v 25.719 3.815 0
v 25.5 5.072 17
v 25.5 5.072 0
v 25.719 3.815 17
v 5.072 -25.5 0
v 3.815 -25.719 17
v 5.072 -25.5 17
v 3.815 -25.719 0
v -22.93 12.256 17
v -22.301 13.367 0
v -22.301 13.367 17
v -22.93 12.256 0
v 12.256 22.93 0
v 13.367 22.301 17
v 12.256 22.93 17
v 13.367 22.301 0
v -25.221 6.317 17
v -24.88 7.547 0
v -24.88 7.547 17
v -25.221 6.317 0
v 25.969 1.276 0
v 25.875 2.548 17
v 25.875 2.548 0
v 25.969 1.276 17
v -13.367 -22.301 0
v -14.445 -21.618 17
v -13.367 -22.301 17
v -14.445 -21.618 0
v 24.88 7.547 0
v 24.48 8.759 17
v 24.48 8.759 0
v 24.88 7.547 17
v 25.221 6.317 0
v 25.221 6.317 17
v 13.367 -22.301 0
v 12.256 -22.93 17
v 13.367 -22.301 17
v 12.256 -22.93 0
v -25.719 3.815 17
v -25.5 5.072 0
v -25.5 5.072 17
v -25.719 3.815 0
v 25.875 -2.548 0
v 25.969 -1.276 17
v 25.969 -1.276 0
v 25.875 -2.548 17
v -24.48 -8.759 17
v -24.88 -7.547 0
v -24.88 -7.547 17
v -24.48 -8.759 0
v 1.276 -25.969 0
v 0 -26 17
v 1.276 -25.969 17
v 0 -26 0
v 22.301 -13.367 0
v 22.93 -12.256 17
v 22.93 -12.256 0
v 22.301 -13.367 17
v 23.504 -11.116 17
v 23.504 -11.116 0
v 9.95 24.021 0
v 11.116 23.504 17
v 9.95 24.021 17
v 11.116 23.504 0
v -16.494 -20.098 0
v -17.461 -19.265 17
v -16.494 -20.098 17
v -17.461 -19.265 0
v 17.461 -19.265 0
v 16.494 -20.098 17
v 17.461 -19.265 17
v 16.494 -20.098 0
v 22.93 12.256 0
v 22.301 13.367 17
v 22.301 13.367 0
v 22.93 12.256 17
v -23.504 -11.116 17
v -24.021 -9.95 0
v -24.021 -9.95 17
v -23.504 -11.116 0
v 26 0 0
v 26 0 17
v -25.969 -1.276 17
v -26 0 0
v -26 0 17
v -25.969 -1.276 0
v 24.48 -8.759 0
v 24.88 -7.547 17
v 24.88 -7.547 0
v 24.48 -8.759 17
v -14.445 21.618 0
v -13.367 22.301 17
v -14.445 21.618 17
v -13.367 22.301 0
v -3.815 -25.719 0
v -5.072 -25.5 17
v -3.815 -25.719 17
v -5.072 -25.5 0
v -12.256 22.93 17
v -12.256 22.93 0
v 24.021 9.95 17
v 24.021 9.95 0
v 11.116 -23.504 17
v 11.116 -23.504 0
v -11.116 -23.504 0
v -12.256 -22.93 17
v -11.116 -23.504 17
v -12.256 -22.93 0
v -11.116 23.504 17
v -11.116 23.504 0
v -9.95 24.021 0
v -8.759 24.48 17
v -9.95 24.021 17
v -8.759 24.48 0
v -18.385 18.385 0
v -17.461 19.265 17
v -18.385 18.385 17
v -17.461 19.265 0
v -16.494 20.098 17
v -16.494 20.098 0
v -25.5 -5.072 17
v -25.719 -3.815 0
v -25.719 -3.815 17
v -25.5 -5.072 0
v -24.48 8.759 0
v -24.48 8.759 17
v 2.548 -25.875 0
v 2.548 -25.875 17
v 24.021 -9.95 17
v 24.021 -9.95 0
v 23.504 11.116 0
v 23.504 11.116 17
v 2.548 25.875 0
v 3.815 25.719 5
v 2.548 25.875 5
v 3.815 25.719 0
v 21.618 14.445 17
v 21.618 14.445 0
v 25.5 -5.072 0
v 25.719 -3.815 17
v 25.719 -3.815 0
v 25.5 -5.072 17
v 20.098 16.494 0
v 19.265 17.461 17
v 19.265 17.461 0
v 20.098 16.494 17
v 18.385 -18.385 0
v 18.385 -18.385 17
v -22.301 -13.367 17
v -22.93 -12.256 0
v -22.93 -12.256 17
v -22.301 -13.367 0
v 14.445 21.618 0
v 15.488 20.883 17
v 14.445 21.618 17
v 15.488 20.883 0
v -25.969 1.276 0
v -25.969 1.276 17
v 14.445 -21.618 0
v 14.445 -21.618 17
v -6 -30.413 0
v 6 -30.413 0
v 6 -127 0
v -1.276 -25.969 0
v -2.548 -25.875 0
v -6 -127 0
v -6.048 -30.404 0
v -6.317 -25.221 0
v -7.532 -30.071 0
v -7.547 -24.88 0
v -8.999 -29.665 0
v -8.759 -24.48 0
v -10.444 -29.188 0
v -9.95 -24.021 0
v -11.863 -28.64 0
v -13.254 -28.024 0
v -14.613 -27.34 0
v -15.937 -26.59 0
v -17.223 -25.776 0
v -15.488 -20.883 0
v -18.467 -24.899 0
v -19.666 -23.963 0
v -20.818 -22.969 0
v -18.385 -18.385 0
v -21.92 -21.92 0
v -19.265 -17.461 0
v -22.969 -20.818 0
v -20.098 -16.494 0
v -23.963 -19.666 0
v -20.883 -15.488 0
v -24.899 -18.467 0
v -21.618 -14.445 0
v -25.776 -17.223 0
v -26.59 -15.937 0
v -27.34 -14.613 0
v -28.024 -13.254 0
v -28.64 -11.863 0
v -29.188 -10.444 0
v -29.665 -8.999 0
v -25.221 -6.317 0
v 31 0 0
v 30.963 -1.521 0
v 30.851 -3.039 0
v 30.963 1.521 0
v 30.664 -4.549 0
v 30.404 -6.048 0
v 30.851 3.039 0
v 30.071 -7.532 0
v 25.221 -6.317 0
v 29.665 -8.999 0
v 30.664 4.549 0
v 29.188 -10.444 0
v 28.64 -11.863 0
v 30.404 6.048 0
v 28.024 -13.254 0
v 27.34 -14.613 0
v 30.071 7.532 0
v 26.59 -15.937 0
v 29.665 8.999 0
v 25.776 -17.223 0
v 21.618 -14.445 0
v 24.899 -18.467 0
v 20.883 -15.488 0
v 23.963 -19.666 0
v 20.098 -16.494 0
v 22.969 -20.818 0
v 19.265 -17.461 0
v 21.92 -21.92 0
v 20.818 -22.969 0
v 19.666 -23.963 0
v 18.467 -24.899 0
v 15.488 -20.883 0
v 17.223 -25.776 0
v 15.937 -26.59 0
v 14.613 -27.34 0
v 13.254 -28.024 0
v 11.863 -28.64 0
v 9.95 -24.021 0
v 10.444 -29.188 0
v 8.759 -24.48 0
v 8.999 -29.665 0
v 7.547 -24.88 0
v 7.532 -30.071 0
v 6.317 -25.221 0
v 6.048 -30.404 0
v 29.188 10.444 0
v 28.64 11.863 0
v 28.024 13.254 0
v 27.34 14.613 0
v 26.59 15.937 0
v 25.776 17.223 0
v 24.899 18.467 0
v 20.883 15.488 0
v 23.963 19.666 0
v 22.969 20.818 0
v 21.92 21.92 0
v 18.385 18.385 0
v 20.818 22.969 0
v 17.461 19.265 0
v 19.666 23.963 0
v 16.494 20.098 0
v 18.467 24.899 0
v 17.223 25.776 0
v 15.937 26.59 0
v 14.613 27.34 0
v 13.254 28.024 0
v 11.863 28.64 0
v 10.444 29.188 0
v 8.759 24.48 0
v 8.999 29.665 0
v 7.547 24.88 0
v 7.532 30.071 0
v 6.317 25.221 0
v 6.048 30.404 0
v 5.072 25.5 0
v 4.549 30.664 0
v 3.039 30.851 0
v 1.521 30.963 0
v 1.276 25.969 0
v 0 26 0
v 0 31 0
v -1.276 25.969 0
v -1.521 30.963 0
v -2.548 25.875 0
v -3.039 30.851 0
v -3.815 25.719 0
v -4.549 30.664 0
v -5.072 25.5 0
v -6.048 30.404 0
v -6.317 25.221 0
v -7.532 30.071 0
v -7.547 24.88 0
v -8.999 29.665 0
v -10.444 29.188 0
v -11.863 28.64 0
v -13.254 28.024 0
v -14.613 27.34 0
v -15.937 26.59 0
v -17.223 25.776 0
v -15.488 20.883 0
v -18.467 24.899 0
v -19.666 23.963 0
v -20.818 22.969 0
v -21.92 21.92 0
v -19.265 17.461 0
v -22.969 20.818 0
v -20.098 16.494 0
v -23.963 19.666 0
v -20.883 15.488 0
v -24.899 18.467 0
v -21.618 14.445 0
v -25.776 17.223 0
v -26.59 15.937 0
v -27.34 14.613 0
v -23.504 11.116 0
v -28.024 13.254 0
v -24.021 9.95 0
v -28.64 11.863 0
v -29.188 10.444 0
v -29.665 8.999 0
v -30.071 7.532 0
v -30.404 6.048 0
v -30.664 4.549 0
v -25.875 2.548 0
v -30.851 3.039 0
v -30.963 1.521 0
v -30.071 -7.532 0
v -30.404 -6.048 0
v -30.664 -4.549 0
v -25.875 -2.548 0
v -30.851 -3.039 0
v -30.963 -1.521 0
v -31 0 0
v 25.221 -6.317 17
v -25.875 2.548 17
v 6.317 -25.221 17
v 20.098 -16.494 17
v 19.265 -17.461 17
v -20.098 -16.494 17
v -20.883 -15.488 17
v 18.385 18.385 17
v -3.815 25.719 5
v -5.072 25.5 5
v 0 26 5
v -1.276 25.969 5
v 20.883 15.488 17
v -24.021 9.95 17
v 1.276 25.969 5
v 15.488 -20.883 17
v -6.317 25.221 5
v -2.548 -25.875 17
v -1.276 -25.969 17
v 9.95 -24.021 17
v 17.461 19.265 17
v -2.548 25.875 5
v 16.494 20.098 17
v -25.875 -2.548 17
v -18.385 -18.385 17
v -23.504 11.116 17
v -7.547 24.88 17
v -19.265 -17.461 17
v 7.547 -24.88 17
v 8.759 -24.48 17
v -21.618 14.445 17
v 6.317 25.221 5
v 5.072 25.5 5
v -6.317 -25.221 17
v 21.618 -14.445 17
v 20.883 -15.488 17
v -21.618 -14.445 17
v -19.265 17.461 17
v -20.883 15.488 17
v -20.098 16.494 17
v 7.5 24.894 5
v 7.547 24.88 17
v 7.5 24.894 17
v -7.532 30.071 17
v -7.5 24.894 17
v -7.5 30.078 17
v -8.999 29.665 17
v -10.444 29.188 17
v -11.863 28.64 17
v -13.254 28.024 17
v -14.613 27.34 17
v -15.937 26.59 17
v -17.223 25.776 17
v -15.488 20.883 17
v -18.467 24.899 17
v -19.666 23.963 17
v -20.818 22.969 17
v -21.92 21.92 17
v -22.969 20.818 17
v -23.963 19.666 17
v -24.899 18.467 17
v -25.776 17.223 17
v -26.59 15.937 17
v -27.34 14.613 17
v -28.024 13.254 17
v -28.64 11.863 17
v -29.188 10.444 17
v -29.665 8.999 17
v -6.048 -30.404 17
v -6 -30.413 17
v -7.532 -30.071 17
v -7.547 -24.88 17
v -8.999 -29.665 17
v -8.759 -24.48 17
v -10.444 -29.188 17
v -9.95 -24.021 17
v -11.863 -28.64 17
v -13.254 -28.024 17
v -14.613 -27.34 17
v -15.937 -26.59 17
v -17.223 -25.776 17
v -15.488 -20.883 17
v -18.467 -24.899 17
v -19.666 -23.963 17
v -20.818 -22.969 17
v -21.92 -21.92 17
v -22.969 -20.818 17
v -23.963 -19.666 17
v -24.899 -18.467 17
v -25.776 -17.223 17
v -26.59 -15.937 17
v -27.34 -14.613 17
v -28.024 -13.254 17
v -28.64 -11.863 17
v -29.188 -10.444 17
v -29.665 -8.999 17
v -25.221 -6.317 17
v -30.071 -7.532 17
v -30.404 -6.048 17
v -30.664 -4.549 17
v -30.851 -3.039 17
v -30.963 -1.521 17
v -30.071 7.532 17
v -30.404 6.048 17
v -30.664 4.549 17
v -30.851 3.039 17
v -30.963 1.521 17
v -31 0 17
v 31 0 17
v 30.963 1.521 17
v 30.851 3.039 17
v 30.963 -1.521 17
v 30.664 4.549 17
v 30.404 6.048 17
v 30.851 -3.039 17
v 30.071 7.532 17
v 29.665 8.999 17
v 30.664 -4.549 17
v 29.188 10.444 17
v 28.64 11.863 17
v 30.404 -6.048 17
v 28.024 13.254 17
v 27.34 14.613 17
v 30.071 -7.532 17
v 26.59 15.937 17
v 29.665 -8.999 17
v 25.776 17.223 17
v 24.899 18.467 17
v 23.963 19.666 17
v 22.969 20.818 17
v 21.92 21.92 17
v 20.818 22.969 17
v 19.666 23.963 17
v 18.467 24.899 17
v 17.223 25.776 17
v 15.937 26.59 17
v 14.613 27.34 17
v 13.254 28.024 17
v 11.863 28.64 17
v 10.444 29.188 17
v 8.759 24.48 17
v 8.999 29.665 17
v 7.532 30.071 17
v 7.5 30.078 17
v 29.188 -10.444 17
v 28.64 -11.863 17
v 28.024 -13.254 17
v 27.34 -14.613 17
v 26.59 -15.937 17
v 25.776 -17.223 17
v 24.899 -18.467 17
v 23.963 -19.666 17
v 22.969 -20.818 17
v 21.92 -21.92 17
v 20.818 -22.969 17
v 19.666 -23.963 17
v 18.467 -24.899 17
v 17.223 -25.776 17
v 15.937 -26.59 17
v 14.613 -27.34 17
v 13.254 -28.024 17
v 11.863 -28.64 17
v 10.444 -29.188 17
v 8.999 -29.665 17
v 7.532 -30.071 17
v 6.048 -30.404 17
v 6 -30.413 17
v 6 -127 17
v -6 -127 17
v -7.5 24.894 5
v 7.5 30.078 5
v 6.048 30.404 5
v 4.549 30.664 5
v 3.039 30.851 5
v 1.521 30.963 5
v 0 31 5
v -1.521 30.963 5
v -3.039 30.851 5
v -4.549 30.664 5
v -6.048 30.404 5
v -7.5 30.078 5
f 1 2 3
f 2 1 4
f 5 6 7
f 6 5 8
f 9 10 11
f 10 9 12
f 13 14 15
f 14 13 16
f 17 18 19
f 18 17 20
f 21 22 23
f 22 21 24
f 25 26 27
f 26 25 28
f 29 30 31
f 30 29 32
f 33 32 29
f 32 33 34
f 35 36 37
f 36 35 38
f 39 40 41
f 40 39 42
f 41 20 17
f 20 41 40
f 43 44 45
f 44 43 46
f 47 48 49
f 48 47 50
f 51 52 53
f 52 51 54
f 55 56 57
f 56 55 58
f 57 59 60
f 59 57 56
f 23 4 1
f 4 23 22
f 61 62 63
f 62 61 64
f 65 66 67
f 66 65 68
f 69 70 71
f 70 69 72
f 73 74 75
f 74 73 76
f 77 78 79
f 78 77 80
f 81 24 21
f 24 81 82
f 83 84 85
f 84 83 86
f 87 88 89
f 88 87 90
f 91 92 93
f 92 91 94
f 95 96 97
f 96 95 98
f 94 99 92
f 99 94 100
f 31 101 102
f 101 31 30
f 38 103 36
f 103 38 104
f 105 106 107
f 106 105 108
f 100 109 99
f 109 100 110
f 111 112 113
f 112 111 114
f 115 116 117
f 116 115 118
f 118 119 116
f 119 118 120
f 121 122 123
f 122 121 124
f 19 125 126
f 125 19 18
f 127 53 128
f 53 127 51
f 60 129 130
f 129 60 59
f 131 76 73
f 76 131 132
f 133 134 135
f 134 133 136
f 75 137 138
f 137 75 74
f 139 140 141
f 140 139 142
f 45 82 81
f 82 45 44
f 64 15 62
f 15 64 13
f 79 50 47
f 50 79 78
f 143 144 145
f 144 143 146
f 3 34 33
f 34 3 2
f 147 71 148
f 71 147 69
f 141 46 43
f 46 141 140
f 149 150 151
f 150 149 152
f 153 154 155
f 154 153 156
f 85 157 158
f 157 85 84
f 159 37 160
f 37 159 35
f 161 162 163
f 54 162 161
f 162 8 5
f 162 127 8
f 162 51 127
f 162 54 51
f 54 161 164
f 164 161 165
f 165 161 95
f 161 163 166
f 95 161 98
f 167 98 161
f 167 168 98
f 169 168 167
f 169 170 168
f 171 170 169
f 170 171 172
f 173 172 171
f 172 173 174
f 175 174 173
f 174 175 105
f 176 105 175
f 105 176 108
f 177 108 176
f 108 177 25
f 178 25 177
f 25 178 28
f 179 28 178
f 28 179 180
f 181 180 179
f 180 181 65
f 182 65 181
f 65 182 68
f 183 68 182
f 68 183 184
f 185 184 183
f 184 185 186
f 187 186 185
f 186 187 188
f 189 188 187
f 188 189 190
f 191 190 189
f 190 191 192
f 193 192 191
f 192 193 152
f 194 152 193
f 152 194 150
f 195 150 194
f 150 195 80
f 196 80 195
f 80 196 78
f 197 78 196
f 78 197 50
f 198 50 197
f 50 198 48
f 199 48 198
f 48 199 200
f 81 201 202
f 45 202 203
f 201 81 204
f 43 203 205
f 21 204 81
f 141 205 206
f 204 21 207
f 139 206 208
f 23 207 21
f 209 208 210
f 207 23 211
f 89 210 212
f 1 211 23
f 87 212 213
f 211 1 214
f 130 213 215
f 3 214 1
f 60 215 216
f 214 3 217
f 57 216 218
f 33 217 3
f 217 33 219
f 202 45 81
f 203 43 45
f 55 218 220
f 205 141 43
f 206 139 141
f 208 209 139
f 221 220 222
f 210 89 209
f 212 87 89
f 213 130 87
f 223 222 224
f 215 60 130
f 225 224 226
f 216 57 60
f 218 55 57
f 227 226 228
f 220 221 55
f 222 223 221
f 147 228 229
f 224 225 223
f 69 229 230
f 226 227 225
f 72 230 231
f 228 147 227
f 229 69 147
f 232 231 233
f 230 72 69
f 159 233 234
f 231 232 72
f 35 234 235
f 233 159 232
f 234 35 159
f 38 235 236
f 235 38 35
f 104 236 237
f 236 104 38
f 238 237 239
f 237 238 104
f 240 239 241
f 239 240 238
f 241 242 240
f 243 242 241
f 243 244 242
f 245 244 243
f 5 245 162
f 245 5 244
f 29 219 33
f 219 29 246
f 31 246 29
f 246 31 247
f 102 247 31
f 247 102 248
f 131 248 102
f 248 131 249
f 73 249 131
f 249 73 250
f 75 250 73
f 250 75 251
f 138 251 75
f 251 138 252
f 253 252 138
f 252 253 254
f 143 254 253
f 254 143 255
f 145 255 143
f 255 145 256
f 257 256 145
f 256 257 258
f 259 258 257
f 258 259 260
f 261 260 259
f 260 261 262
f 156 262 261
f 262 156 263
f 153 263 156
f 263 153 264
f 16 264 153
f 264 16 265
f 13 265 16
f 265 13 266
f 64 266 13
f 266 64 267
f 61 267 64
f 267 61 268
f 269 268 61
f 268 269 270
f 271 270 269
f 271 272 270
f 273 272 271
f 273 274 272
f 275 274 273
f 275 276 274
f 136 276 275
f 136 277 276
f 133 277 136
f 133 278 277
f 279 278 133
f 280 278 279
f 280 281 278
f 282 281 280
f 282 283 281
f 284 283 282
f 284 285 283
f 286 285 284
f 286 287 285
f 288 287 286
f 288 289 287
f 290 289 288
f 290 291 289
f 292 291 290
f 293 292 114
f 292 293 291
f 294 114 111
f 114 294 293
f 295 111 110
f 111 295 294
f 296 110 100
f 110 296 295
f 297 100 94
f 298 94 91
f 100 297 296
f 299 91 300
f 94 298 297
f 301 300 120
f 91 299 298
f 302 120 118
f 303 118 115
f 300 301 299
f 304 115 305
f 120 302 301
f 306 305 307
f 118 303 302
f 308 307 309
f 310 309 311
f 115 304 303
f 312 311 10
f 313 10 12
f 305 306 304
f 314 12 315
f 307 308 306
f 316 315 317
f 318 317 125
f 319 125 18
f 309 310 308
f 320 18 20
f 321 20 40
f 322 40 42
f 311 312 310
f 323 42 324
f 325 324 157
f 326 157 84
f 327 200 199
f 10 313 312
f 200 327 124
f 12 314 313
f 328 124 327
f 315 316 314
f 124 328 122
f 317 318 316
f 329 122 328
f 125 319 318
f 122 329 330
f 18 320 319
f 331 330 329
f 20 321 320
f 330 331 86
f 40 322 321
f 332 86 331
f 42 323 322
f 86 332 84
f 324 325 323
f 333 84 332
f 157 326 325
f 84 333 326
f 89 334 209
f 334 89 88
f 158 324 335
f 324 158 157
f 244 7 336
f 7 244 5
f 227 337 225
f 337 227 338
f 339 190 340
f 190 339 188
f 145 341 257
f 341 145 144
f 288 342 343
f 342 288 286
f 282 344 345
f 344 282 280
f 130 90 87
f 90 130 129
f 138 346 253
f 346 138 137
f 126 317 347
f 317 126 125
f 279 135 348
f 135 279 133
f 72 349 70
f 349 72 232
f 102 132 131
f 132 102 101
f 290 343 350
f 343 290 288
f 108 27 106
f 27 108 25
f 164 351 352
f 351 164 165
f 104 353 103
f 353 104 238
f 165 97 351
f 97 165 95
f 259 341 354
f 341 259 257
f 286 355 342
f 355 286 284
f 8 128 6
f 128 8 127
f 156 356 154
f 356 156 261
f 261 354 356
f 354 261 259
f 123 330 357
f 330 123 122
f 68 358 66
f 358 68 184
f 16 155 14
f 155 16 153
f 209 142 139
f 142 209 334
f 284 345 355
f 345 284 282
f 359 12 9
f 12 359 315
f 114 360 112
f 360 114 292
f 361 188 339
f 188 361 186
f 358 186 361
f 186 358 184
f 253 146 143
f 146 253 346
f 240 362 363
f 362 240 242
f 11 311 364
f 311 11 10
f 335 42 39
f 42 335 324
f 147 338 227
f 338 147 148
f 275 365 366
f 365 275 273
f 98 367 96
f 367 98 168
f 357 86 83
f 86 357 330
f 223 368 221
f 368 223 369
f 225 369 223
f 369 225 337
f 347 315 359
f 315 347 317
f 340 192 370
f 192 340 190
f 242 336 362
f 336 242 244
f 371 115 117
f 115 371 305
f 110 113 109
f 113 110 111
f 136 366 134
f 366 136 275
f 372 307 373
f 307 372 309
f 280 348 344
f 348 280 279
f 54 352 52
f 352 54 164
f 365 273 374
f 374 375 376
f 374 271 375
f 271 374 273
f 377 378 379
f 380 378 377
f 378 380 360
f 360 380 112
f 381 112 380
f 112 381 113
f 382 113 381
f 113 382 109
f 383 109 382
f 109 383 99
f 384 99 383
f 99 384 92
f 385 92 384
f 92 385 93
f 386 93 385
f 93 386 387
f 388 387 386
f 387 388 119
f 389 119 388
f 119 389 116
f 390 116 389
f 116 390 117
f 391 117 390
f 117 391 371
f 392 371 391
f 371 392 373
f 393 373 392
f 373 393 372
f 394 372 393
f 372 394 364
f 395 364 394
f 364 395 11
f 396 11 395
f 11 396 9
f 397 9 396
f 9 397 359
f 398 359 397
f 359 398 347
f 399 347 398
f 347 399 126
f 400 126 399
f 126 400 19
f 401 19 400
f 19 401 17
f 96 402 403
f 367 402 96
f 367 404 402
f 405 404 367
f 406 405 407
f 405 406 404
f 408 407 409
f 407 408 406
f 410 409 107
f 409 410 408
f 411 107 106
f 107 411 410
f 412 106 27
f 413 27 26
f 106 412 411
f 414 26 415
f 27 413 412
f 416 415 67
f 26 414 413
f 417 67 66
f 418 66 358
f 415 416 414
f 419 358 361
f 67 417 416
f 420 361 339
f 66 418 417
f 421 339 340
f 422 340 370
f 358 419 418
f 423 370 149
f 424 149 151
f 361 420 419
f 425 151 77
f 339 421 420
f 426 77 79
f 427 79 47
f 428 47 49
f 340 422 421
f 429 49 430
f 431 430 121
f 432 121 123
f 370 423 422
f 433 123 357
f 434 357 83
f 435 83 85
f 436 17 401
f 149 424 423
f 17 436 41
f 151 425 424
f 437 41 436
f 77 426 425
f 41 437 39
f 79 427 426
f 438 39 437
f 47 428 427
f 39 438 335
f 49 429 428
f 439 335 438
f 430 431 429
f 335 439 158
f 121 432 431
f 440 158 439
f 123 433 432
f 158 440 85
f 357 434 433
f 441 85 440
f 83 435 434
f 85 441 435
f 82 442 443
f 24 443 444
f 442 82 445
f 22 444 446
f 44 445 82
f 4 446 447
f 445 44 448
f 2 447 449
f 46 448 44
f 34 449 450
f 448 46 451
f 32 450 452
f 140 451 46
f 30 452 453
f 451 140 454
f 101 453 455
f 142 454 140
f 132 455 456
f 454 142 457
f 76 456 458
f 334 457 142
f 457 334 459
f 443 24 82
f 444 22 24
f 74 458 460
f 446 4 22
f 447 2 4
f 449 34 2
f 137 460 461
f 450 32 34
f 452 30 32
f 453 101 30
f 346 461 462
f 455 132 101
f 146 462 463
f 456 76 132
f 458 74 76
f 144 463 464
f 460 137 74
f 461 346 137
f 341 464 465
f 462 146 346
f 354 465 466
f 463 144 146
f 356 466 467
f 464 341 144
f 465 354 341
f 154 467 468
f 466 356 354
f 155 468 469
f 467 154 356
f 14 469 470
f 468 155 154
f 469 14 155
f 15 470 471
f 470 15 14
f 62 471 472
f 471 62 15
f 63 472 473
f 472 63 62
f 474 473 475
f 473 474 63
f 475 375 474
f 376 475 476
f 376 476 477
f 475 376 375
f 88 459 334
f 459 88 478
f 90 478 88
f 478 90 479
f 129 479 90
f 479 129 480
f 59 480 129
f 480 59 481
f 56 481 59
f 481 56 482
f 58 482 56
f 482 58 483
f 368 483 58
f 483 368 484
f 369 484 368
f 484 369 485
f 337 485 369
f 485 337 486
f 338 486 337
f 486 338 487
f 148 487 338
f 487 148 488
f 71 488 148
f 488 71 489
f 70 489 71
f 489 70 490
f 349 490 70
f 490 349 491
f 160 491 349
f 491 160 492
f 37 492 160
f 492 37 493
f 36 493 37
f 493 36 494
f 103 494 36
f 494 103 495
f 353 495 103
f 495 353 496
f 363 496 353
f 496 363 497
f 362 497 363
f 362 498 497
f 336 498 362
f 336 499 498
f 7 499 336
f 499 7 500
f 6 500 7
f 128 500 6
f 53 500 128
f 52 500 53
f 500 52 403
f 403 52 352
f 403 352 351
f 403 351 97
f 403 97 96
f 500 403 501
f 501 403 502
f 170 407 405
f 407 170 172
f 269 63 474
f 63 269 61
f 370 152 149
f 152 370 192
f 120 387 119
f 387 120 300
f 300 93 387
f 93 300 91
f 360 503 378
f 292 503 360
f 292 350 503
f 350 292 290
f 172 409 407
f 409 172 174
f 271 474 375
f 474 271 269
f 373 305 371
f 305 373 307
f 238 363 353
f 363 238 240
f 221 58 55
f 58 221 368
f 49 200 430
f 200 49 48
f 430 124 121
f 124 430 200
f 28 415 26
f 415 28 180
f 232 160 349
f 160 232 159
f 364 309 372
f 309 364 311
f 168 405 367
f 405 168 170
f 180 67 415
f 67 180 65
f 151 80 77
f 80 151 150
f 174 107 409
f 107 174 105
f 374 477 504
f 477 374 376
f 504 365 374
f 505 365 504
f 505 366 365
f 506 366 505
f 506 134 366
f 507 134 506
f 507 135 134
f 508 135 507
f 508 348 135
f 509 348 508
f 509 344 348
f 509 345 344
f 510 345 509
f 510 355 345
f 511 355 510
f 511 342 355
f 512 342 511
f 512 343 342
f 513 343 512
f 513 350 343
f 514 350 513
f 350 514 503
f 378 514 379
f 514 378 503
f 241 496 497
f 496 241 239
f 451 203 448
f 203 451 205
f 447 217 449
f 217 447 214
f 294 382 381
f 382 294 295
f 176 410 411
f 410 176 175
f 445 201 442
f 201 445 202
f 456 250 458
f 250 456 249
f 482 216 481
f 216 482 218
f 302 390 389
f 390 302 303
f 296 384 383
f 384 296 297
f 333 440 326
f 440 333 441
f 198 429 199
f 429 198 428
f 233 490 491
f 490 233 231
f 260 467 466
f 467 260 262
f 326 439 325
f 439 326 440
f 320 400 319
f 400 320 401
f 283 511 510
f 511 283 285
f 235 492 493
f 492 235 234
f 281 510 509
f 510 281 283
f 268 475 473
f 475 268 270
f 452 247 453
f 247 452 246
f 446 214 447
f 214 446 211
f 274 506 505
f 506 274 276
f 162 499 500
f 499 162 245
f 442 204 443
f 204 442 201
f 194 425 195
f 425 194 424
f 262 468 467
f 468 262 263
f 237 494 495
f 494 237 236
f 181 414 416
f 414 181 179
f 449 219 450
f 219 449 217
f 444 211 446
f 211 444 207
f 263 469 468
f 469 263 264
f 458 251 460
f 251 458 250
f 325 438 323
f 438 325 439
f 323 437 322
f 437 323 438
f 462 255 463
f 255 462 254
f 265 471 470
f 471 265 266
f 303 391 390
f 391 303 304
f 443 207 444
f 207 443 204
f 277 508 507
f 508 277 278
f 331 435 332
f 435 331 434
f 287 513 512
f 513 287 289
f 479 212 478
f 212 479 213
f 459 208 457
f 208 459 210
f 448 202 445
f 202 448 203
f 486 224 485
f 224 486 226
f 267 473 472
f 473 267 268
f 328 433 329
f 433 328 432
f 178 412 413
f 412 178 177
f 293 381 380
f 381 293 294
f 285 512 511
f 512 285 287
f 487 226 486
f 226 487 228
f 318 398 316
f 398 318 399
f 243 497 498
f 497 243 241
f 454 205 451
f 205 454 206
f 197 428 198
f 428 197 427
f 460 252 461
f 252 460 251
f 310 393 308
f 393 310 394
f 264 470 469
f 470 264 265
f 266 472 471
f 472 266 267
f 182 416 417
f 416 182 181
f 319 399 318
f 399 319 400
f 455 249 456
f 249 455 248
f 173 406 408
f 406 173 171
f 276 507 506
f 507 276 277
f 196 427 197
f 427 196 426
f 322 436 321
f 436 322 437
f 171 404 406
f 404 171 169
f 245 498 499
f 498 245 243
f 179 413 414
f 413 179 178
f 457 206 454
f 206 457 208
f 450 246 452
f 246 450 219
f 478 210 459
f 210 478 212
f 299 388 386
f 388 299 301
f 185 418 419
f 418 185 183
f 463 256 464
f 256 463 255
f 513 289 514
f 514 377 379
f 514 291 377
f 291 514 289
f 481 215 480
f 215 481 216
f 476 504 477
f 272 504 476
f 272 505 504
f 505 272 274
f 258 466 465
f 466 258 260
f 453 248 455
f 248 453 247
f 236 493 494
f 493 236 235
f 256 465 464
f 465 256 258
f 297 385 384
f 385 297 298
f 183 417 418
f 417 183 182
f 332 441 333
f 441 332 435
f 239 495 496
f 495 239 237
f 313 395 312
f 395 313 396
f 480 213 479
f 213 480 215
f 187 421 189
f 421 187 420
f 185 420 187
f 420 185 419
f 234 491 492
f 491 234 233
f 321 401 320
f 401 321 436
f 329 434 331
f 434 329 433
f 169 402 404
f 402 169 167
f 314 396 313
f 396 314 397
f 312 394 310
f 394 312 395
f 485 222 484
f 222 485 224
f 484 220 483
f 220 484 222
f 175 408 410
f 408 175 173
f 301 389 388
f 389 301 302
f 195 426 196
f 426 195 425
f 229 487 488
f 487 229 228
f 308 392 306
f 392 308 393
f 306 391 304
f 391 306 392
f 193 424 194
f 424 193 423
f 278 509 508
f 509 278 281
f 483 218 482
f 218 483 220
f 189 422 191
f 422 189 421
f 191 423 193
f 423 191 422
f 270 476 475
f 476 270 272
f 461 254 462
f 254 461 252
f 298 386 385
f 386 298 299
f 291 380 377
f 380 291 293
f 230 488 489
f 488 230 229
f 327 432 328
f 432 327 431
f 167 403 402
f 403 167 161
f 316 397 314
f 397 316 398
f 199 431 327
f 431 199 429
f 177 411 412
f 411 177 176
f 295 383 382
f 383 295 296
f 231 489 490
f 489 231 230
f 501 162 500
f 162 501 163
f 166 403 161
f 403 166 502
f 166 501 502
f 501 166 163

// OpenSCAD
$fn = $preview ? 16 : 128;

inner_d = 50;
outer_d = 60;
oi_diff = outer_d - inner_d;
pin_d = 13;
height = 12;
slack = 2;
handlelength = 100;
handlewidth = height;
kant = 5;

testprint = false;

useheight = testprint ? 2 : height+kant;
usehandlewidth = testprint ? 10 : handlewidth;
usehandlelength = testprint ? handlelength / 4 : handlelength;

difference() {
    union() {
        cylinder(d=outer_d+slack, h=useheight);
    }
    union() {
        cylinder(d=inner_d+slack, h=useheight);
        translate([-(pin_d+slack)/2,outer_d/2-oi_diff,kant]) {
            cube([pin_d+slack,oi_diff+slack,useheight+slack]);
        }
    }
}
translate([-usehandlewidth/2,-usehandlelength-inner_d/2-slack,0]) {
    cube([usehandlewidth,usehandlelength,useheight]);
}
